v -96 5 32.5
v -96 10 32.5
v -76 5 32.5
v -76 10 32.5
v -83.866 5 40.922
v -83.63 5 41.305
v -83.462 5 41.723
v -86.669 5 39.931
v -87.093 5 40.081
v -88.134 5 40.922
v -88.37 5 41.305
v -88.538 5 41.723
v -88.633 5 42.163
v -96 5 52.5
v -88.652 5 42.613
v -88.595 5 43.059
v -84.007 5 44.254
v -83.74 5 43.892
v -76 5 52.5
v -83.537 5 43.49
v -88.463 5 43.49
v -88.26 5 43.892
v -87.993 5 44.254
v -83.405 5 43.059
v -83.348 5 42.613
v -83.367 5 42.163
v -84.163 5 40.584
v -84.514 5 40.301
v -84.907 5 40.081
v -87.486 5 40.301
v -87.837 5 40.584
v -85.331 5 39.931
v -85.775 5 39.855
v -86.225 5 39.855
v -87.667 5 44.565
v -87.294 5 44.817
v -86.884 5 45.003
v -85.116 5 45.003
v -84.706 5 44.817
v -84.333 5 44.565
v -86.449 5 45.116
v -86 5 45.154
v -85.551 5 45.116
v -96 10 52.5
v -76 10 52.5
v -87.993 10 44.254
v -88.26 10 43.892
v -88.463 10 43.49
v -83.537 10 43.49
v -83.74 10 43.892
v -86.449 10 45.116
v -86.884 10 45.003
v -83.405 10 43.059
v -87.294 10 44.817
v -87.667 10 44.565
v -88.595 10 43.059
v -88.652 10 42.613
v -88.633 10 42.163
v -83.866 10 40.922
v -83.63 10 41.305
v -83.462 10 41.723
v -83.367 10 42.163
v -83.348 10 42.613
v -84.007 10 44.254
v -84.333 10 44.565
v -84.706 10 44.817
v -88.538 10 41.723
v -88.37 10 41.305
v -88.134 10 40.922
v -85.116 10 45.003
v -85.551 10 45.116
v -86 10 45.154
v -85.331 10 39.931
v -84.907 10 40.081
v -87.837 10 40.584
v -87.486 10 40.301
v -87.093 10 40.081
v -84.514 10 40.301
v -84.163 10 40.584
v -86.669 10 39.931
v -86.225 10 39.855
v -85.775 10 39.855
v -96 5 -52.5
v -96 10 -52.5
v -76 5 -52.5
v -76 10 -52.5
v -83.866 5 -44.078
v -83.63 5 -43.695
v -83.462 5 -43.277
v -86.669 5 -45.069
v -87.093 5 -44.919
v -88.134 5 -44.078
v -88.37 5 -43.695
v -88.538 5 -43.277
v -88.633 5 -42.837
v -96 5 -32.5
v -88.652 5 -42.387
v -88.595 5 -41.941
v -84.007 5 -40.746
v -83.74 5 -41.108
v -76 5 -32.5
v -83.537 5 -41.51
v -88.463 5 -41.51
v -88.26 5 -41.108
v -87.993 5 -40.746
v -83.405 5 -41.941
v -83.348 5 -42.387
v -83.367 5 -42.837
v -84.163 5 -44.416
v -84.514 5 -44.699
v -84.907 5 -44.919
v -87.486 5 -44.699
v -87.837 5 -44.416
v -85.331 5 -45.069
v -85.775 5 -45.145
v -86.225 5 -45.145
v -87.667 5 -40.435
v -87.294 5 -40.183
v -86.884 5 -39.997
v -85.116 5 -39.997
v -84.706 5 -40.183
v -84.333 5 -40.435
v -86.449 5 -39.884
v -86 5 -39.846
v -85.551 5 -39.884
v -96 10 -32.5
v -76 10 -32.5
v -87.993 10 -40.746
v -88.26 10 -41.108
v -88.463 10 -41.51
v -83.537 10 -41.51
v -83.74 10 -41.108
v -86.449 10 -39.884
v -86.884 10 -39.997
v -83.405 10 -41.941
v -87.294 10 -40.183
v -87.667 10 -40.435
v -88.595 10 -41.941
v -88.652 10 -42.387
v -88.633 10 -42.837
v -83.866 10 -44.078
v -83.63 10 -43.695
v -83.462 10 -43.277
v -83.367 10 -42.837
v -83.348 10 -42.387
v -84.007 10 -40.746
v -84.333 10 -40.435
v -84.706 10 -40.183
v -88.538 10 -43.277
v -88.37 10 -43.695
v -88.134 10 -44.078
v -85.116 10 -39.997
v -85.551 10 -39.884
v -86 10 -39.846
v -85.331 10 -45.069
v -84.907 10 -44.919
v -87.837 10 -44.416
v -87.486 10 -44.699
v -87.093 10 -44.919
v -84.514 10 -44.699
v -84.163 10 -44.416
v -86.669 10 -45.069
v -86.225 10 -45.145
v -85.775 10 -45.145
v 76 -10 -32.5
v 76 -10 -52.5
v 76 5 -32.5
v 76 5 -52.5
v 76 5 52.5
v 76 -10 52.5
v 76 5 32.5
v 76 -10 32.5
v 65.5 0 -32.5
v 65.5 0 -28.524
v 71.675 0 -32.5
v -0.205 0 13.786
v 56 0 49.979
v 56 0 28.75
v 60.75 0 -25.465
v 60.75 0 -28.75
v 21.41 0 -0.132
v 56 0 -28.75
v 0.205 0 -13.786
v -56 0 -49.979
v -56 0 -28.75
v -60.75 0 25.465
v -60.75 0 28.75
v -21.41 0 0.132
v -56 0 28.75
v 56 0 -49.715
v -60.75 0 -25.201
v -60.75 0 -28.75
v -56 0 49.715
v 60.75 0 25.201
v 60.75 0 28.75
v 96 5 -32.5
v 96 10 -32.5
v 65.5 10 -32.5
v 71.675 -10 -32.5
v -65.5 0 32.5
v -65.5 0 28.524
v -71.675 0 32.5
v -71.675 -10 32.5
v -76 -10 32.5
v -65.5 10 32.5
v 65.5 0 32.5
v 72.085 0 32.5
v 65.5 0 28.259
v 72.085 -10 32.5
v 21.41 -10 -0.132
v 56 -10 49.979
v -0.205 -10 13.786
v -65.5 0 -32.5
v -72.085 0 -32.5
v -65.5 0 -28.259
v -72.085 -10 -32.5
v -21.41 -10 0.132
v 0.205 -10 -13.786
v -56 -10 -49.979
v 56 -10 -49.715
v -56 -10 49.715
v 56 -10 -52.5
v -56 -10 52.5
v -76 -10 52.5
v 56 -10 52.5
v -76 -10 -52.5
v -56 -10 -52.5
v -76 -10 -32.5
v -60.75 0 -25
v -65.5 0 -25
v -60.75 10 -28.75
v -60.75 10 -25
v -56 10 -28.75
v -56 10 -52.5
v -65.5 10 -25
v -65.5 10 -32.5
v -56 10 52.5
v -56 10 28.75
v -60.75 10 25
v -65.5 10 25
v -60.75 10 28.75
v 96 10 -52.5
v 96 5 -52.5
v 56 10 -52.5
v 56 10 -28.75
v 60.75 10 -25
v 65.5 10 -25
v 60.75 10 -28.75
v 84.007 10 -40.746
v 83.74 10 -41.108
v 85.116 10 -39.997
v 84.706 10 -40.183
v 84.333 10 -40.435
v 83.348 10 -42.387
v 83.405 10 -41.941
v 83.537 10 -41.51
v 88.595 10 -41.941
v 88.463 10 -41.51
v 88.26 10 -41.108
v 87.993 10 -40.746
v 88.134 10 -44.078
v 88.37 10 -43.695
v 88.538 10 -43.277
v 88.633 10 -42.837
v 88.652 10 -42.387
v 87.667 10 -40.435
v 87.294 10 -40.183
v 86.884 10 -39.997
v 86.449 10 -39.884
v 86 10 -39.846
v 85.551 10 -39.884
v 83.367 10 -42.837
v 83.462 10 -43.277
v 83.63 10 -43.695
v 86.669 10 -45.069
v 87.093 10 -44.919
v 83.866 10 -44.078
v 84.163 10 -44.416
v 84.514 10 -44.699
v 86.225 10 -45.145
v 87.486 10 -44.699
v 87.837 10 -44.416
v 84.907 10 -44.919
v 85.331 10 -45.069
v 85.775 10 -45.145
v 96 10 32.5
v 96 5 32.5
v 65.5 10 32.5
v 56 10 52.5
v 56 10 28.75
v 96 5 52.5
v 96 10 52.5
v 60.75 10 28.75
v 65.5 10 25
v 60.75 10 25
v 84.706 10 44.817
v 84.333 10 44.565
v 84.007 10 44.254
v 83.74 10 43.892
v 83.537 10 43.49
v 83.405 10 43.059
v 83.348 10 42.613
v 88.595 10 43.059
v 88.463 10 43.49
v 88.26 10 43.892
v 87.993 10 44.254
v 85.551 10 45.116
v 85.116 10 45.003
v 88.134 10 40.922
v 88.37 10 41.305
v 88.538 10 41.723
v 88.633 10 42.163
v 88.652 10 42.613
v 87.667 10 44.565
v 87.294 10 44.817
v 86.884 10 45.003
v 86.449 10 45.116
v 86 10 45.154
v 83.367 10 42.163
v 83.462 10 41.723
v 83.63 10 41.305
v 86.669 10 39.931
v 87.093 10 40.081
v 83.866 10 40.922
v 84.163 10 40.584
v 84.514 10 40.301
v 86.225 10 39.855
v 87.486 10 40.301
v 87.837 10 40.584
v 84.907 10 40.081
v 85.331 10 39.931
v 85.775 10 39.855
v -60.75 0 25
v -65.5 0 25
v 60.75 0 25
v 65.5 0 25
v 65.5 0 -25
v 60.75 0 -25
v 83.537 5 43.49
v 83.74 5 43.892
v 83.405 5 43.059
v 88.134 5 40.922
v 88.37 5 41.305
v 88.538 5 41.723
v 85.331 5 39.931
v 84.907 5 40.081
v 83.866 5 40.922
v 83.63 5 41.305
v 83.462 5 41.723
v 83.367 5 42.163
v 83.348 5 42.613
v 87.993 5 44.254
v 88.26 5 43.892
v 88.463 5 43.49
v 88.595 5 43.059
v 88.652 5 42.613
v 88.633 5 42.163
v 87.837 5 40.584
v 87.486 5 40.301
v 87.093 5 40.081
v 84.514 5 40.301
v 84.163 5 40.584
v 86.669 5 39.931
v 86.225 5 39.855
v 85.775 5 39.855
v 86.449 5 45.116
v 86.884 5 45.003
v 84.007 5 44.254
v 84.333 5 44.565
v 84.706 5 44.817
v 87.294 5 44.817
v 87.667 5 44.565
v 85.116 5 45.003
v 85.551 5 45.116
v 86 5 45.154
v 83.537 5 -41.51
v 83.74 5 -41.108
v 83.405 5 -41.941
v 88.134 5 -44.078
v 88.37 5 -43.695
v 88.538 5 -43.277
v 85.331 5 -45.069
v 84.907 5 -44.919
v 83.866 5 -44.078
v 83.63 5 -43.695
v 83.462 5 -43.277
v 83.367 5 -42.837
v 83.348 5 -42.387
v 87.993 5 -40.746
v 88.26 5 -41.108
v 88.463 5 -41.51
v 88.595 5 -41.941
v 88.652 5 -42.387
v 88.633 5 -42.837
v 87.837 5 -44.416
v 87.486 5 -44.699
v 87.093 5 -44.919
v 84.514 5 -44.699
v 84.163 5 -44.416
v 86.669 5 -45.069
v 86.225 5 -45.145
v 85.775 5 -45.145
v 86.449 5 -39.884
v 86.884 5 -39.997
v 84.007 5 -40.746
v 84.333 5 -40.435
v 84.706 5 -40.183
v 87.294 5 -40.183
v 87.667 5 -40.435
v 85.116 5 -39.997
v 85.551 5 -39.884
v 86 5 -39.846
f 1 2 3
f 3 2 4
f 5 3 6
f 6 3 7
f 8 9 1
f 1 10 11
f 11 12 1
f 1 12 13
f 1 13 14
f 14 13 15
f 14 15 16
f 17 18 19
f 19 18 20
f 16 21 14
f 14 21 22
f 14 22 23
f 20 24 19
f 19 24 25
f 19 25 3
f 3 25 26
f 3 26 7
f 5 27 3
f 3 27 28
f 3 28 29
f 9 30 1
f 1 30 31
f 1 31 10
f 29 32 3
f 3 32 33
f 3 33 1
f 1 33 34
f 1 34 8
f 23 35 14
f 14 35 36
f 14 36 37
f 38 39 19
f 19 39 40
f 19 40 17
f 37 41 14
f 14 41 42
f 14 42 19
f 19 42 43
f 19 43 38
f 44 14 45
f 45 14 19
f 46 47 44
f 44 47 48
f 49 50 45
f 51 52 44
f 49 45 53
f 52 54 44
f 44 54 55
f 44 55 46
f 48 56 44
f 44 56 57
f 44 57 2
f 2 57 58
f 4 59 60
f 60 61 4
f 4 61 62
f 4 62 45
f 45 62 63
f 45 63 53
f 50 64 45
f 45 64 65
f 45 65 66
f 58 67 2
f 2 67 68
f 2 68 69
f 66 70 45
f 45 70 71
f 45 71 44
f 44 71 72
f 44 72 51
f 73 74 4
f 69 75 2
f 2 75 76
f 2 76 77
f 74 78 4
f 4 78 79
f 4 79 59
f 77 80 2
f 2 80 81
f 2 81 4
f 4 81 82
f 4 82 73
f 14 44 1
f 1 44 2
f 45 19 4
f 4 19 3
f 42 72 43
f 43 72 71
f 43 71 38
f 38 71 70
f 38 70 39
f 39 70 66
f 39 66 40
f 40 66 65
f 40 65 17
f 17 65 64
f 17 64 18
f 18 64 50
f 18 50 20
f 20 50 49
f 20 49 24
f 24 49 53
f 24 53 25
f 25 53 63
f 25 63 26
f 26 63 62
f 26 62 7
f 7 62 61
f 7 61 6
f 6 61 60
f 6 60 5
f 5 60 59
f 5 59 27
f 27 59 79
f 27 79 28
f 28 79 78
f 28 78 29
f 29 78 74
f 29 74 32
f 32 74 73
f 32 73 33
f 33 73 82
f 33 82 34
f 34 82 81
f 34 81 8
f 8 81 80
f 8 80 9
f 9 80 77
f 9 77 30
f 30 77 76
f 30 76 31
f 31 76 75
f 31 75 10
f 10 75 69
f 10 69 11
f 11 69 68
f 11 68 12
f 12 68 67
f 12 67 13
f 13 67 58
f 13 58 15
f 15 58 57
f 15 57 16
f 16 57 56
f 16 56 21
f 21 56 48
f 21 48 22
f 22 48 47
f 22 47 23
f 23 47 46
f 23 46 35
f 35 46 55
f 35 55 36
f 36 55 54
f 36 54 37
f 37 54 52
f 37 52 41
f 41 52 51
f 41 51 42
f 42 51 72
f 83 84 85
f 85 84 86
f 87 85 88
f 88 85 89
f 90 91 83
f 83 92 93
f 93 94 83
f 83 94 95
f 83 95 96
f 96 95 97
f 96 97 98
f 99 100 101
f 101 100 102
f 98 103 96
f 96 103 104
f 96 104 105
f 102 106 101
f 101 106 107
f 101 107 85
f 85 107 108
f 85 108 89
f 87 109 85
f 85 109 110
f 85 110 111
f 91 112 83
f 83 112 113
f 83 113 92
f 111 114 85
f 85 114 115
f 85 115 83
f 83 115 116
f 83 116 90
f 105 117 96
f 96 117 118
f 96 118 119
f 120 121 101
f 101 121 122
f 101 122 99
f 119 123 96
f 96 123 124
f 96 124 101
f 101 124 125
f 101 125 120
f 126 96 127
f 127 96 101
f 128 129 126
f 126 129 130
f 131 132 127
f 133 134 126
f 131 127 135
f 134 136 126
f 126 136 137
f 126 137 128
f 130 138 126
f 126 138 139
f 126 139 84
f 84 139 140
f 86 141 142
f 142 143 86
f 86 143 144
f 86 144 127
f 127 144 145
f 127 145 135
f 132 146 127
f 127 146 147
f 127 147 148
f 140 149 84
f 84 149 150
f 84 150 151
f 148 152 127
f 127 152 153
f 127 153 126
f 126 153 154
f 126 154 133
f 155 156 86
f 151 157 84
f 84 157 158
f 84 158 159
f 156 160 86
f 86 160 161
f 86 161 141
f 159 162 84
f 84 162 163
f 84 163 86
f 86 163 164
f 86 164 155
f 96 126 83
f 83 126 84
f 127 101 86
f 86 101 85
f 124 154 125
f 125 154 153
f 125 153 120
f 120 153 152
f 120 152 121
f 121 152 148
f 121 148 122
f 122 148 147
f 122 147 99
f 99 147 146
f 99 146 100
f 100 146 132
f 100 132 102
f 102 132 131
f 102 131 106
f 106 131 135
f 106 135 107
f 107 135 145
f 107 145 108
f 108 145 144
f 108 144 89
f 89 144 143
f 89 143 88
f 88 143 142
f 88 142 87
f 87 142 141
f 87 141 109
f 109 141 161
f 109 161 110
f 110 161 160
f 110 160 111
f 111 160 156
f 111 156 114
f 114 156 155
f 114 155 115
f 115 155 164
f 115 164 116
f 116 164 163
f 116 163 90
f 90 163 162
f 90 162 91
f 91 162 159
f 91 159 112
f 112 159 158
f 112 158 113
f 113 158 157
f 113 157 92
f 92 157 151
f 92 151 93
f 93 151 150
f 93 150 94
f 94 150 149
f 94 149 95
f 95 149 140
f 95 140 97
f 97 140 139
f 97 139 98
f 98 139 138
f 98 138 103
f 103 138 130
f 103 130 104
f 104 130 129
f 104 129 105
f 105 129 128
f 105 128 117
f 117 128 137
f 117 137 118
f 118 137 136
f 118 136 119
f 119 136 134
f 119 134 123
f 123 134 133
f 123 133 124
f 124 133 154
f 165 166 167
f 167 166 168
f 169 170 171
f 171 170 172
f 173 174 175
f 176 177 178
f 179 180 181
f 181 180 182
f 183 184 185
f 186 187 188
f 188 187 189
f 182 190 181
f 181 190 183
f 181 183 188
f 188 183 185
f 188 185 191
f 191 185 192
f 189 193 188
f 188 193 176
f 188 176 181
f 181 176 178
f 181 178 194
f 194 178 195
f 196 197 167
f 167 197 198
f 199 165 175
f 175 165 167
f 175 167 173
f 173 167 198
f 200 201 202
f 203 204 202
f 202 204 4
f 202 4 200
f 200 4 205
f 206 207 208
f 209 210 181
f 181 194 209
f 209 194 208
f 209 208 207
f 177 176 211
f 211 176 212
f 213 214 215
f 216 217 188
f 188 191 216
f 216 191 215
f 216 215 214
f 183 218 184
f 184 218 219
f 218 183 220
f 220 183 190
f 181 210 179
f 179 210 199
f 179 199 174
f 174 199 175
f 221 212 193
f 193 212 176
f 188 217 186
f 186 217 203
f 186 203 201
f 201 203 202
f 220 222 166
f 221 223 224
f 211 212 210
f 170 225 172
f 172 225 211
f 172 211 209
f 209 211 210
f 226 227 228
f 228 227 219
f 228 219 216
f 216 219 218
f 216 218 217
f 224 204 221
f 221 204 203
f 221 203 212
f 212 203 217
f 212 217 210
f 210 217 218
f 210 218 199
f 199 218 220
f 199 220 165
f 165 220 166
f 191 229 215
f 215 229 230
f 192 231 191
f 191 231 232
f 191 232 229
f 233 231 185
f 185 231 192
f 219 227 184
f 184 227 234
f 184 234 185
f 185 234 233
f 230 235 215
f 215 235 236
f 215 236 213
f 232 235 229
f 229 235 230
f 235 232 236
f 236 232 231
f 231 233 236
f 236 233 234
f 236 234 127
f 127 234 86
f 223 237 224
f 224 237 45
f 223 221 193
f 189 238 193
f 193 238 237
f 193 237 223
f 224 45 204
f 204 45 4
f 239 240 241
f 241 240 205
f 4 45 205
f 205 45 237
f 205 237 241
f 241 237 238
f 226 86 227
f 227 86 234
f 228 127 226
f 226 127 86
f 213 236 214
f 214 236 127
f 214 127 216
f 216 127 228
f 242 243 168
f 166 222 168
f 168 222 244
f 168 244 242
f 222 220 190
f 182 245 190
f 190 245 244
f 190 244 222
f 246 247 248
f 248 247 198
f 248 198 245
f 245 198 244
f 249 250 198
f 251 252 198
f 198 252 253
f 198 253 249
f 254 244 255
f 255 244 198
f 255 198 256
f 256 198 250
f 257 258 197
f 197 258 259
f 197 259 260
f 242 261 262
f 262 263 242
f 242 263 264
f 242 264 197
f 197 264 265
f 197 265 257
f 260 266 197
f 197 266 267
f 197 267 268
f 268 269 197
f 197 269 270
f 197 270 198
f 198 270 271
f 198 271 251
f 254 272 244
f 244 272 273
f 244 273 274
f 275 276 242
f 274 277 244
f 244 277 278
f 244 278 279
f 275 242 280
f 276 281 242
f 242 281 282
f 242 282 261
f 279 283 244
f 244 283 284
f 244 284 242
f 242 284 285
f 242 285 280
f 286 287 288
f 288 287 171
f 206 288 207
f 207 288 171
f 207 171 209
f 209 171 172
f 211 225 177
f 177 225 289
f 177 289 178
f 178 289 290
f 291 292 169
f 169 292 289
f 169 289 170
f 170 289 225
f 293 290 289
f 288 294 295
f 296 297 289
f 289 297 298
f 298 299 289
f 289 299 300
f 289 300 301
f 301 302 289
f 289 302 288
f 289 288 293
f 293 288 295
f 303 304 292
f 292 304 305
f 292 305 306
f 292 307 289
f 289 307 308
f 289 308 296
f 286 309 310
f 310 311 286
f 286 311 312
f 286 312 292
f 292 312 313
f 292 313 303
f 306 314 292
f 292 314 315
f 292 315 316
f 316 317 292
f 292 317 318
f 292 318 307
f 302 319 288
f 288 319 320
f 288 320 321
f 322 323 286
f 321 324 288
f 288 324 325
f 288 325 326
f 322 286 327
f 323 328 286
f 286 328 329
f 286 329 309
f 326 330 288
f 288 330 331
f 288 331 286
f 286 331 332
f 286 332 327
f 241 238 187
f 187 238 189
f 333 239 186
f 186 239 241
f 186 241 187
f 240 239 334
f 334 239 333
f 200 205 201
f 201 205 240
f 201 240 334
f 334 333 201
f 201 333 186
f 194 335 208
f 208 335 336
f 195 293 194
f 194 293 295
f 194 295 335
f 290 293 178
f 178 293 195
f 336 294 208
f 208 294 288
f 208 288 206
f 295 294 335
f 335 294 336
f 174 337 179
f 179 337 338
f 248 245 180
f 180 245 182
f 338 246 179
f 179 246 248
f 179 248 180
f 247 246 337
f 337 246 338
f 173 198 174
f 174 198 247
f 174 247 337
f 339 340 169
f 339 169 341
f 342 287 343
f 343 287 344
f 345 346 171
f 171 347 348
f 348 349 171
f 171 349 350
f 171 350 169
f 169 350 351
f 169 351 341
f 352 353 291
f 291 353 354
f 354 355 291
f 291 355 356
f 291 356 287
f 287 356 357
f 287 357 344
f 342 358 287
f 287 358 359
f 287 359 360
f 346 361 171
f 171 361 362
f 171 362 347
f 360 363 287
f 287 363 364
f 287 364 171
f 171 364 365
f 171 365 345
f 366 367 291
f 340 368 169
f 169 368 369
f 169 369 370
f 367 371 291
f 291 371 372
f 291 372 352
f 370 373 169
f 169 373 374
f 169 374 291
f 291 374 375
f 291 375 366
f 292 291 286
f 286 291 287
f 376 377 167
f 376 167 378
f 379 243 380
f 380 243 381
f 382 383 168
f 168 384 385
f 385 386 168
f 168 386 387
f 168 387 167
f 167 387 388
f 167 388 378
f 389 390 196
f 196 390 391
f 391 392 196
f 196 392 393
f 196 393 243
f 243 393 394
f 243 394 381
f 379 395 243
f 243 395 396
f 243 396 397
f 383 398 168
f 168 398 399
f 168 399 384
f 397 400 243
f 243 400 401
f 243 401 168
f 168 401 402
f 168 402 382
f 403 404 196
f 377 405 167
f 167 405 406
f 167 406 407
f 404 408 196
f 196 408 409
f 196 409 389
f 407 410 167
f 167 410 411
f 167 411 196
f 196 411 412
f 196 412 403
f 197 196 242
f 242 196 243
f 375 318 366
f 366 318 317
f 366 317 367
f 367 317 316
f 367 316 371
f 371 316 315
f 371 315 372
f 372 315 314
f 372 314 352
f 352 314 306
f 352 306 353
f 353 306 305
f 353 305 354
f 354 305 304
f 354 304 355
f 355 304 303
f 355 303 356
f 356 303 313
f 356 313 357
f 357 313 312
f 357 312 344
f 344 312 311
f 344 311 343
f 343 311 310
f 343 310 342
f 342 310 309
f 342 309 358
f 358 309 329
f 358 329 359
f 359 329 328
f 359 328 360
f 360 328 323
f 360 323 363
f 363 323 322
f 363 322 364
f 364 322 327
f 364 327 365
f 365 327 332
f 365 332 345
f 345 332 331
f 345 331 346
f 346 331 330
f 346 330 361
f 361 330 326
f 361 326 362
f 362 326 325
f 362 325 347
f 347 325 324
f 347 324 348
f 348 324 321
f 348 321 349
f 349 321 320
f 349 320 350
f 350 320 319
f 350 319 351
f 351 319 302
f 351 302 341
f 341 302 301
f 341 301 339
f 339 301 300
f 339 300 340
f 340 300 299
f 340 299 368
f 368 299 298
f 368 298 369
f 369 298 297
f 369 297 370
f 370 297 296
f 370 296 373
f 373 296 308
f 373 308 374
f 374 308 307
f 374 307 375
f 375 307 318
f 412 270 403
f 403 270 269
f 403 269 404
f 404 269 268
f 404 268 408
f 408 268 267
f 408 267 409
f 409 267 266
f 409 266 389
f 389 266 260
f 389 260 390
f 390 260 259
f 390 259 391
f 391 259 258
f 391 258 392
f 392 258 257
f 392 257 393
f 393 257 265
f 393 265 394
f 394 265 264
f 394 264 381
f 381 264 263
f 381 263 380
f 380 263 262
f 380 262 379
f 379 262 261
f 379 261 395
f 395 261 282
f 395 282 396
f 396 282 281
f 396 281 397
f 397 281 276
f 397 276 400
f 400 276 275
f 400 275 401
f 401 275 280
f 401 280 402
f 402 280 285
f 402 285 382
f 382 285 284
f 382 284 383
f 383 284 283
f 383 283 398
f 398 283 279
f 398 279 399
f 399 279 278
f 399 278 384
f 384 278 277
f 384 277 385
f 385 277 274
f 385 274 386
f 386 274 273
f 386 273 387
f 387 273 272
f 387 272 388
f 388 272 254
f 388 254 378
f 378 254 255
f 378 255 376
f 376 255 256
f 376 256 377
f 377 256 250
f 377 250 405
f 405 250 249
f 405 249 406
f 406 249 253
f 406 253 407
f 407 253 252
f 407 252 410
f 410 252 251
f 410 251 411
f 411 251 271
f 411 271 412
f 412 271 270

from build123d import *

# Parameters (mm, degrees)
SKETCH1_W                           = 20
SKETCH1_H                           = 20
BOSS_EXTRUDE1_DEPTH                 = 10
BOSS_EXTRUDE1_2_DEPTH               = 10
BOSS_EXTRUDE1_3_DEPTH               = 10
BOSS_EXTRUDE1_4_DEPTH               = 10
SKETCH1_3_W                         = 20
SKETCH1_3_H                         = 20
BOSS_EXTRUDE2_DEPTH                 = 10
BOSS_EXTRUDE3_DEPTH                 = 10
SKETCH3_W                           = 20
SKETCH3_H                           = 5
BOSS_EXTRUDE4_DEPTH                 = 20
BOSS_EXTRUDE4_2_DEPTH               = 20
BOSS_EXTRUDE6_DEPTH                 = 10
SKETCH10_W                          = 2.6543
SKETCH10_H                          = 20
F_4_0_209_DIAMETER_HOLE1_AT_2_COUNT = 2
F_4_0_209_DIAMETER_HOLE1_AT_2_PITCH = 172
F_4_0_209_DIAMETER_HOLE1_AT_3_COUNT = 2
F_4_0_209_DIAMETER_HOLE1_AT_3_PITCH = 191.85671737
F_4_0_209_DIAMETER_HOLE1_AT_4_COUNT = 2
F_4_0_209_DIAMETER_HOLE1_AT_4_PITCH = 85


with BuildPart() as part:
    # Sketch1 → Boss-Extrude1 (new body)
    with BuildSketch(Plane(origin=(0, 0, 0), x_dir=(1, 0, 0), z_dir=(0, 1, 0))):
        with Locations((-66, 42.5)):
            Rectangle(SKETCH1_W, SKETCH1_H)
    extrude(amount=BOSS_EXTRUDE1_DEPTH)



with BuildPart() as body_2:
    # Sketch1 → Boss-Extrude1 2 (new body)
    with BuildSketch(Plane(origin=(0, 0, 0), x_dir=(1, 0, 0), z_dir=(0, 1, 0))):
        with Locations((-66, -42.5)):
            Rectangle(SKETCH1_W, SKETCH1_H)
    extrude(amount=BOSS_EXTRUDE1_2_DEPTH)


with BuildPart() as body_3:
    # Sketch1 → Boss-Extrude1 3 (new body)
    with BuildSketch(Plane(origin=(0, 0, 0), x_dir=(1, 0, 0), z_dir=(0, 1, 0))):
        with Locations((66, -42.5)):
            Rectangle(SKETCH1_W, SKETCH1_H)
    extrude(amount=BOSS_EXTRUDE1_3_DEPTH)


with BuildPart() as body_4:
    # Sketch1 → Boss-Extrude1 4 (new body)
    with BuildSketch(Plane(origin=(0, 0, 0), x_dir=(1, 0, 0), z_dir=(0, 1, 0))):
        with Locations((66, 42.5)):
            Rectangle(SKETCH1_W, SKETCH1_H)
    extrude(amount=BOSS_EXTRUDE1_4_DEPTH)


with BuildPart() as part_1:
    add(part.part)

    add(body_2.part)  # Boss-Extrude2 merges body 2

    add(body_3.part)  # Boss-Extrude2 merges body 3

    add(body_4.part)  # Boss-Extrude2 merges body 4
    # Sketch1<3> → Boss-Extrude2 (add)
    with BuildSketch(Plane(origin=(0, 0, 0), x_dir=(1, 0, 0), z_dir=(0, 1, 0))):
        with Locations((-66, 42.5)):
            Rectangle(SKETCH1_3_W, SKETCH1_3_H)
        with Locations((-66, -42.5)):
            Rectangle(SKETCH1_3_W, SKETCH1_3_H)
        with Locations((66, -42.5)):
            Rectangle(SKETCH1_3_W, SKETCH1_3_H)
        with Locations((66, 42.5)):
            Rectangle(SKETCH1_3_W, SKETCH1_3_H)
    extrude(amount=-BOSS_EXTRUDE2_DEPTH)



with BuildPart() as body_2_2:
    # Sketch2 → Boss-Extrude3 (new body)
    with BuildSketch(Plane(origin=(0, 0, 0), x_dir=(1, 0, 0), z_dir=(0, 1, 0))):
        Polygon((-59.664368284, 52.338863371), (-72.335631716, 32.661136629), (-21.409556012, -0.132169696), (-72.215306836, -32.84799409), (-59.784693164, -52.15200591), (-0.205251763, -13.786456523), (59.664368284, -52.338863371), (72.335631716, -32.661136629), (21.409556012, 0.132169696), (72.215306836, 32.84799409), (59.784693164, 52.15200591), (0.205251763, 13.786456523), align=None)
    extrude(amount=-BOSS_EXTRUDE3_DEPTH)


with BuildPart() as body_3_2:
    # Sketch3 → Boss-Extrude4 (new body)
    with BuildSketch(Plane.ZY.offset(76)):
        with Locations((-42.5, 7.5)):
            Rectangle(SKETCH3_W, SKETCH3_H)
    boss_extrude4 = extrude(amount=BOSS_EXTRUDE4_DEPTH)

    # Sketch10 → #4 (0.209) Diameter Hole1 (revolve, cut)
    with BuildSketch(Plane(origin=(-86, 10, -42.5), x_dir=(0, 0, 1), z_dir=(1, 0, 0))):
        with Locations((1.32715, 10)):
            Rectangle(SKETCH10_W, SKETCH10_H)
    f_4_0_209_diameter_hole1 = revolve(axis=Axis((-86, 16.35, -42.5), (0, -1, 0)), mode=Mode.SUBTRACT)


with BuildPart() as body_4_2:
    # Sketch3 → Boss-Extrude4 2 (new body)
    with BuildSketch(Plane.ZY.offset(76)):
        with Locations((42.5, 7.5)):
            Rectangle(SKETCH3_W, SKETCH3_H)
    boss_extrude4_2 = extrude(amount=BOSS_EXTRUDE4_2_DEPTH)

    # #4 (0.209) Diameter Hole1 at 4: #4 (0.209) Diameter Hole1 ×2
    with Locations(*[(0, 0, i * F_4_0_209_DIAMETER_HOLE1_AT_4_PITCH) for i in range(1, F_4_0_209_DIAMETER_HOLE1_AT_4_COUNT)]):
        add(f_4_0_209_diameter_hole1, mode=Mode.SUBTRACT)


with BuildPart() as part_2:
    add(part_1.part)

    add(body_2_2.part)  # Boss-Extrude6 merges body 2 2
    # Sketch8 → Boss-Extrude6 (add)
    with BuildSketch(Plane(origin=(0, 0, 0), x_dir=(1, 0, 0), z_dir=(0, 1, 0))):
        Polygon((-65.5, 32.5), (-65.5, 25), (-60.75, 25), (-60.75, 28.75), (-56, 28.75), (-56, 32.5), align=None)
        Polygon((60.75, 25), (65.5, 25), (65.5, 32.5), (56, 32.5), (56, 28.75), (60.75, 28.75), align=None)
        Polygon((65.5, -32.5), (65.5, -25), (60.75, -25), (60.75, -28.75), (56, -28.75), (56, -32.5), align=None)
        Polygon((-60.75, -25), (-65.5, -25), (-65.5, -32.5), (-56, -32.5), (-56, -28.75), (-60.75, -28.75), align=None)
    extrude(amount=BOSS_EXTRUDE6_DEPTH)

    # Mirror1: Boss-Extrude4, Boss-Extrude4 2 across plane
    add(boss_extrude4.mirror(Plane(origin=(0, 0, 0), x_dir=(0, 0, 1), z_dir=(1, 0, 0))))
    add(boss_extrude4_2.mirror(Plane(origin=(0, 0, 0), x_dir=(0, 0, 1), z_dir=(1, 0, 0))))

    # #4 (0.209) Diameter Hole1 at 2: #4 (0.209) Diameter Hole1 ×2
    with Locations(*[(i * F_4_0_209_DIAMETER_HOLE1_AT_2_PITCH, 0, 0) for i in range(1, F_4_0_209_DIAMETER_HOLE1_AT_2_COUNT)]):
        add(f_4_0_209_diameter_hole1, mode=Mode.SUBTRACT)

    # #4 (0.209) Diameter Hole1 at 3: #4 (0.209) Diameter Hole1 ×2
    with Locations(*[Vector(0.8965023604999744, 0, 0.44303895722382464) * (i * F_4_0_209_DIAMETER_HOLE1_AT_3_PITCH) for i in range(1, F_4_0_209_DIAMETER_HOLE1_AT_3_COUNT)]):
        add(f_4_0_209_diameter_hole1, mode=Mode.SUBTRACT)


solid = Compound([body_3_2.part, body_4_2.part, part_2.part])
